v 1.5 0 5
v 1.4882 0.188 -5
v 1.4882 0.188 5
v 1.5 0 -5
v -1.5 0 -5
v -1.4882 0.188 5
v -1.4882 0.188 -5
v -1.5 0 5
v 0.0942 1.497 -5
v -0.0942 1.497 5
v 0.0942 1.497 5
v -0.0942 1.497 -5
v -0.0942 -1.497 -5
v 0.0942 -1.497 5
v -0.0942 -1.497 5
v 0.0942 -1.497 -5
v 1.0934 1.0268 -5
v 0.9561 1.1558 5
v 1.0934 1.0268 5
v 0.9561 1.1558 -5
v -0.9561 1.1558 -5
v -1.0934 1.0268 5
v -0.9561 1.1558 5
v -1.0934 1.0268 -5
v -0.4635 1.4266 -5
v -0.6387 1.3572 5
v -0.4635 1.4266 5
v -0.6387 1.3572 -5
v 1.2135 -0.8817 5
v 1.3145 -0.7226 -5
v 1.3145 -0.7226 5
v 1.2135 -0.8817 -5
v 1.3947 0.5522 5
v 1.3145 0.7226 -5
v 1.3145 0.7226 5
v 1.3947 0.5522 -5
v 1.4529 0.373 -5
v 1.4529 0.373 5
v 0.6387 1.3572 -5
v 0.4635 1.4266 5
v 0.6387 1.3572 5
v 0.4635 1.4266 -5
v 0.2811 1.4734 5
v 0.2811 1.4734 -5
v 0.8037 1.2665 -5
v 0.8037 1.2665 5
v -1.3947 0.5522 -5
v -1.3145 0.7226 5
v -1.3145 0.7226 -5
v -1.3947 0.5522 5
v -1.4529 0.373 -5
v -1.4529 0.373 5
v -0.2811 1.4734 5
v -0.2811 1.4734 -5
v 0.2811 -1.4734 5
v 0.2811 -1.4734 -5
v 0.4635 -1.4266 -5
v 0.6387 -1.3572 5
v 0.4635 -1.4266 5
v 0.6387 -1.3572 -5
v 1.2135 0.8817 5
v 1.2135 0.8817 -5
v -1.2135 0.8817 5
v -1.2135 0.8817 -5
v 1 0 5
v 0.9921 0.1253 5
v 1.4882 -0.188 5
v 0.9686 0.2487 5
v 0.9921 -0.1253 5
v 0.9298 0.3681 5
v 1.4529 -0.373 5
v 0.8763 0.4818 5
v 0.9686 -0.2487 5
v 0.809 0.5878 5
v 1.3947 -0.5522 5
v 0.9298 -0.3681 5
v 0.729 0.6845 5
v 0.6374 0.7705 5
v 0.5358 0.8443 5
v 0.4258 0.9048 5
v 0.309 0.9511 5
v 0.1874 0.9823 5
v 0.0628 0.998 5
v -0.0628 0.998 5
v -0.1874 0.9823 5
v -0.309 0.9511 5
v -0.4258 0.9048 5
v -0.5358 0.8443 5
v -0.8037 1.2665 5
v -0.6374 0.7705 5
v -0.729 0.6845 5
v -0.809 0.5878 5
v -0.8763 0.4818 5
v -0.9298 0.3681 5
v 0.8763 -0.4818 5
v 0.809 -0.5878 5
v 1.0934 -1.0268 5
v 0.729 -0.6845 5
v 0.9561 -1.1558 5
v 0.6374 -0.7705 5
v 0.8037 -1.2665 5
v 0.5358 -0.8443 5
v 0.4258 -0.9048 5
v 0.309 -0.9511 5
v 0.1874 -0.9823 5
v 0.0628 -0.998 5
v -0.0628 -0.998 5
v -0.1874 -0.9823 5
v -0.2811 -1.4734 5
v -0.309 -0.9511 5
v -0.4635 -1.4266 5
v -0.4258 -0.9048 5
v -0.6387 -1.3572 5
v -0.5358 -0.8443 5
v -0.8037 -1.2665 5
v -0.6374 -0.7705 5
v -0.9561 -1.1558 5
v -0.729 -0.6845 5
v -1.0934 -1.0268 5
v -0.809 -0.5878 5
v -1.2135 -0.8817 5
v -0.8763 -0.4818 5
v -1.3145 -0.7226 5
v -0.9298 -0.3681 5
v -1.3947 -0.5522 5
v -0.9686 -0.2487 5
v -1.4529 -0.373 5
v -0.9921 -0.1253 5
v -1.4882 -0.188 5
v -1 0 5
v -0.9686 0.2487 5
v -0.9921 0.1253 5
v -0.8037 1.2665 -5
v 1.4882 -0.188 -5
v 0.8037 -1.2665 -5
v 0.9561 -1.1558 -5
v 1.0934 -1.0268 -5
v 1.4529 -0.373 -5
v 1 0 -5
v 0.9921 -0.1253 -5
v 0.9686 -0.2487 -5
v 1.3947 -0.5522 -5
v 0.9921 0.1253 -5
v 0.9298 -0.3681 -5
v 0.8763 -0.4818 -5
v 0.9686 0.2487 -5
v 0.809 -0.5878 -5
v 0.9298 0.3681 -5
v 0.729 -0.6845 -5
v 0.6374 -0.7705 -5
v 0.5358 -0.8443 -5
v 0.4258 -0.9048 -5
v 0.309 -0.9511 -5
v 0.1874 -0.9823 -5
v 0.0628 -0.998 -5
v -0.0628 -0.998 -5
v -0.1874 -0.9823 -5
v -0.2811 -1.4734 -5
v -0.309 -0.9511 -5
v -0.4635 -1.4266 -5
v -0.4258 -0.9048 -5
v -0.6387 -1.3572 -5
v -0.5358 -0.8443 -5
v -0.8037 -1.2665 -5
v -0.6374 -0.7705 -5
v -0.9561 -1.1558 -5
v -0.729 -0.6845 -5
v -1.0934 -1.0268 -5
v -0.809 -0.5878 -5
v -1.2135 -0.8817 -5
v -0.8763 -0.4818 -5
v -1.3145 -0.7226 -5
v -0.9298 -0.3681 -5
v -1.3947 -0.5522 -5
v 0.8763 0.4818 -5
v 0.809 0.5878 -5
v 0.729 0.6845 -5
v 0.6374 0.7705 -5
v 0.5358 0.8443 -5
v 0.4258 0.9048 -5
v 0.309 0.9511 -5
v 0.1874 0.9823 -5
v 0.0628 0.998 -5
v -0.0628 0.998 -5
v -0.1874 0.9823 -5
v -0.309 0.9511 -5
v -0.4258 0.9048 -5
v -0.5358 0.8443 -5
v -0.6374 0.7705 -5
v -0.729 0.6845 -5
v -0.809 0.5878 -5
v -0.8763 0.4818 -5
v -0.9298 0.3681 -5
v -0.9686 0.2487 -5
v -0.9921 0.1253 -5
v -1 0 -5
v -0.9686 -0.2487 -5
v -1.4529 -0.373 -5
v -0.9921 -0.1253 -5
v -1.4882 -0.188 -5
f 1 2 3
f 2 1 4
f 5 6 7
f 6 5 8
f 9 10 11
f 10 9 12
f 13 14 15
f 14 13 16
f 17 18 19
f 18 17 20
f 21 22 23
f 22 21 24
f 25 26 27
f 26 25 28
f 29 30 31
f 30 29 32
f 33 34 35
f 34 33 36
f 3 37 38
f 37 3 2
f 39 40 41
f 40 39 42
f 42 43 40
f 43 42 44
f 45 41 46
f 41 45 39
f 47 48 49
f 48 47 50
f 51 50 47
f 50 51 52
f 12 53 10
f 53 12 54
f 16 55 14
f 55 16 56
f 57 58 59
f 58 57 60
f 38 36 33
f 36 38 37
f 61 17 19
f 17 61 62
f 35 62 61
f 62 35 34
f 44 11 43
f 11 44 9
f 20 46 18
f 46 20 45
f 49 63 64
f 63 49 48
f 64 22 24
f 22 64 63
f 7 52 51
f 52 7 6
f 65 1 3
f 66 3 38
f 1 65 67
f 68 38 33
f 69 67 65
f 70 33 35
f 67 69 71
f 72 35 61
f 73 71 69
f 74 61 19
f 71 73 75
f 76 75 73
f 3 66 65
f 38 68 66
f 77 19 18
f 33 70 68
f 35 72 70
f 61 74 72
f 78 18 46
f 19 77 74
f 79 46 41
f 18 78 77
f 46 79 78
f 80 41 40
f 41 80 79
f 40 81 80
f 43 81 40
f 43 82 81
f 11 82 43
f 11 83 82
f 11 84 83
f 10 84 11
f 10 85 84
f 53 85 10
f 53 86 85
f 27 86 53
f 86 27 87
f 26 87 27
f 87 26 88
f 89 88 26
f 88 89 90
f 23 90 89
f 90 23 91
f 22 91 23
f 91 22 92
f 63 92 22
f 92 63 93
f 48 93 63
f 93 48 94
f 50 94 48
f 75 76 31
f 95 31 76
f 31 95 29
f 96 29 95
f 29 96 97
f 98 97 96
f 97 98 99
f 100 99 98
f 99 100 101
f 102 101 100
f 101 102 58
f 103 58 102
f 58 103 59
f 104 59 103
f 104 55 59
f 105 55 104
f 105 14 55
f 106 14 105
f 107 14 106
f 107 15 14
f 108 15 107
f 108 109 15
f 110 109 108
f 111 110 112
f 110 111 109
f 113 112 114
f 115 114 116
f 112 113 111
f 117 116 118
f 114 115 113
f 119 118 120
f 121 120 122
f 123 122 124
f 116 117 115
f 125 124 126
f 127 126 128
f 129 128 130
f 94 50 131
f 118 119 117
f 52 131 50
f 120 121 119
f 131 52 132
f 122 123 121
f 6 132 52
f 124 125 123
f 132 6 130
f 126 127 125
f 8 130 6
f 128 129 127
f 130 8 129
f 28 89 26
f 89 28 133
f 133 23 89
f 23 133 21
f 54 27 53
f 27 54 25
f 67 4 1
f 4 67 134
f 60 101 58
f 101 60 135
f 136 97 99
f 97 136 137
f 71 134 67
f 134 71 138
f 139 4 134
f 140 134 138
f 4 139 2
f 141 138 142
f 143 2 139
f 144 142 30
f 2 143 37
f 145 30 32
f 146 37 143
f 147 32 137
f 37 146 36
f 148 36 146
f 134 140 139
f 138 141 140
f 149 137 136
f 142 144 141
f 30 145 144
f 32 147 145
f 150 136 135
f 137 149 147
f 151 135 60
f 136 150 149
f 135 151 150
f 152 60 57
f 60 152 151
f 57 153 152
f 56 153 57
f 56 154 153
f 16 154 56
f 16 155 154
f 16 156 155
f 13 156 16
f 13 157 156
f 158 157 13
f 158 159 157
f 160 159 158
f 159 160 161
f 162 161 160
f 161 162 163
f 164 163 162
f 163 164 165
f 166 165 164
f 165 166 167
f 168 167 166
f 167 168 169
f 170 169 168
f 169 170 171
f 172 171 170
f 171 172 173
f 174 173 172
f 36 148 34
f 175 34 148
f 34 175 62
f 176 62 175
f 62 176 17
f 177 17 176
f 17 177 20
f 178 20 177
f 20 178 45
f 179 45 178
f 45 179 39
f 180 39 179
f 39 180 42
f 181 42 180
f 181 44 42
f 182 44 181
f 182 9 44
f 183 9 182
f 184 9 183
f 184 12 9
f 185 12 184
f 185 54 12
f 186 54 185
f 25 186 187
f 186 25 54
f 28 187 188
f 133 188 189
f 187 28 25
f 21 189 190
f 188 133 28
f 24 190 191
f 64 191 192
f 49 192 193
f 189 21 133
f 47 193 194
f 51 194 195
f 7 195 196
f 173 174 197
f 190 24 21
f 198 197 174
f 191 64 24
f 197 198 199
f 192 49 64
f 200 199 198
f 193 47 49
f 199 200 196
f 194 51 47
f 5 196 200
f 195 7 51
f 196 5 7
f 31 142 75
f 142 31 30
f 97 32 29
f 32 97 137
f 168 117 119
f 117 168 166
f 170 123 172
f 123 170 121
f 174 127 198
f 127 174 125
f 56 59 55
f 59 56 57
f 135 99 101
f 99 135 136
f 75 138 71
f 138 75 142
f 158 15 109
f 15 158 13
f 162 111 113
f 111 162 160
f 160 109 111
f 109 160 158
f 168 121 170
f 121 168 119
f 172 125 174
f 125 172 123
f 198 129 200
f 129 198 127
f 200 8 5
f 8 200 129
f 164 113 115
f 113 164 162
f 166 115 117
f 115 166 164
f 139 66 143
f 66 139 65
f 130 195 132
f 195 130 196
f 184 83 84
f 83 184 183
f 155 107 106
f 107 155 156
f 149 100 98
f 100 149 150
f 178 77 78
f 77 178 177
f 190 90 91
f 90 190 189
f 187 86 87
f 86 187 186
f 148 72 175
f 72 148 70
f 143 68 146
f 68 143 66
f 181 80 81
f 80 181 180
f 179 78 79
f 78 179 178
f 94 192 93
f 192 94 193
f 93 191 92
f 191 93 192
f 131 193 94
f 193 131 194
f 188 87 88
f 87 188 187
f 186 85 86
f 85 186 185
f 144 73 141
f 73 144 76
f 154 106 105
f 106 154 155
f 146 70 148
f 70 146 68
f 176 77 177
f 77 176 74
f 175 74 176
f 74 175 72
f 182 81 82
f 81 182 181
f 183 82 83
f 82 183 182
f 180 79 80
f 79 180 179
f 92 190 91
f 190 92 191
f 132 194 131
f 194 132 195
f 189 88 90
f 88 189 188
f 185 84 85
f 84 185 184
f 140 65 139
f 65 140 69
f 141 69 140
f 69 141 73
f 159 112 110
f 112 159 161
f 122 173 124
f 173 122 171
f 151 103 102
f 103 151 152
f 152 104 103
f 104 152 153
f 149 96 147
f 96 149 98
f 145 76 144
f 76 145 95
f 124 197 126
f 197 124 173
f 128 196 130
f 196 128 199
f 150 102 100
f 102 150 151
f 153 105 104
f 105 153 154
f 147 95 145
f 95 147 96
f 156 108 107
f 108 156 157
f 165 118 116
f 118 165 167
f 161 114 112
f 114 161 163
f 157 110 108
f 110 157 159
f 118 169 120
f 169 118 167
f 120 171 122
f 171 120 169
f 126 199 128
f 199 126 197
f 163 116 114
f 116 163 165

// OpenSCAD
$fn = 50;


difference() {
	union() {
		translate(v = [0, 0, -5.0000000000]) {
			cylinder(h = 10, r = 1.5000000000);
		}
	}
	union() {
		translate(v = [0, 0, -100.0000000000]) {
			cylinder(h = 200, r = 1.0000000000);
		}
	}
}
